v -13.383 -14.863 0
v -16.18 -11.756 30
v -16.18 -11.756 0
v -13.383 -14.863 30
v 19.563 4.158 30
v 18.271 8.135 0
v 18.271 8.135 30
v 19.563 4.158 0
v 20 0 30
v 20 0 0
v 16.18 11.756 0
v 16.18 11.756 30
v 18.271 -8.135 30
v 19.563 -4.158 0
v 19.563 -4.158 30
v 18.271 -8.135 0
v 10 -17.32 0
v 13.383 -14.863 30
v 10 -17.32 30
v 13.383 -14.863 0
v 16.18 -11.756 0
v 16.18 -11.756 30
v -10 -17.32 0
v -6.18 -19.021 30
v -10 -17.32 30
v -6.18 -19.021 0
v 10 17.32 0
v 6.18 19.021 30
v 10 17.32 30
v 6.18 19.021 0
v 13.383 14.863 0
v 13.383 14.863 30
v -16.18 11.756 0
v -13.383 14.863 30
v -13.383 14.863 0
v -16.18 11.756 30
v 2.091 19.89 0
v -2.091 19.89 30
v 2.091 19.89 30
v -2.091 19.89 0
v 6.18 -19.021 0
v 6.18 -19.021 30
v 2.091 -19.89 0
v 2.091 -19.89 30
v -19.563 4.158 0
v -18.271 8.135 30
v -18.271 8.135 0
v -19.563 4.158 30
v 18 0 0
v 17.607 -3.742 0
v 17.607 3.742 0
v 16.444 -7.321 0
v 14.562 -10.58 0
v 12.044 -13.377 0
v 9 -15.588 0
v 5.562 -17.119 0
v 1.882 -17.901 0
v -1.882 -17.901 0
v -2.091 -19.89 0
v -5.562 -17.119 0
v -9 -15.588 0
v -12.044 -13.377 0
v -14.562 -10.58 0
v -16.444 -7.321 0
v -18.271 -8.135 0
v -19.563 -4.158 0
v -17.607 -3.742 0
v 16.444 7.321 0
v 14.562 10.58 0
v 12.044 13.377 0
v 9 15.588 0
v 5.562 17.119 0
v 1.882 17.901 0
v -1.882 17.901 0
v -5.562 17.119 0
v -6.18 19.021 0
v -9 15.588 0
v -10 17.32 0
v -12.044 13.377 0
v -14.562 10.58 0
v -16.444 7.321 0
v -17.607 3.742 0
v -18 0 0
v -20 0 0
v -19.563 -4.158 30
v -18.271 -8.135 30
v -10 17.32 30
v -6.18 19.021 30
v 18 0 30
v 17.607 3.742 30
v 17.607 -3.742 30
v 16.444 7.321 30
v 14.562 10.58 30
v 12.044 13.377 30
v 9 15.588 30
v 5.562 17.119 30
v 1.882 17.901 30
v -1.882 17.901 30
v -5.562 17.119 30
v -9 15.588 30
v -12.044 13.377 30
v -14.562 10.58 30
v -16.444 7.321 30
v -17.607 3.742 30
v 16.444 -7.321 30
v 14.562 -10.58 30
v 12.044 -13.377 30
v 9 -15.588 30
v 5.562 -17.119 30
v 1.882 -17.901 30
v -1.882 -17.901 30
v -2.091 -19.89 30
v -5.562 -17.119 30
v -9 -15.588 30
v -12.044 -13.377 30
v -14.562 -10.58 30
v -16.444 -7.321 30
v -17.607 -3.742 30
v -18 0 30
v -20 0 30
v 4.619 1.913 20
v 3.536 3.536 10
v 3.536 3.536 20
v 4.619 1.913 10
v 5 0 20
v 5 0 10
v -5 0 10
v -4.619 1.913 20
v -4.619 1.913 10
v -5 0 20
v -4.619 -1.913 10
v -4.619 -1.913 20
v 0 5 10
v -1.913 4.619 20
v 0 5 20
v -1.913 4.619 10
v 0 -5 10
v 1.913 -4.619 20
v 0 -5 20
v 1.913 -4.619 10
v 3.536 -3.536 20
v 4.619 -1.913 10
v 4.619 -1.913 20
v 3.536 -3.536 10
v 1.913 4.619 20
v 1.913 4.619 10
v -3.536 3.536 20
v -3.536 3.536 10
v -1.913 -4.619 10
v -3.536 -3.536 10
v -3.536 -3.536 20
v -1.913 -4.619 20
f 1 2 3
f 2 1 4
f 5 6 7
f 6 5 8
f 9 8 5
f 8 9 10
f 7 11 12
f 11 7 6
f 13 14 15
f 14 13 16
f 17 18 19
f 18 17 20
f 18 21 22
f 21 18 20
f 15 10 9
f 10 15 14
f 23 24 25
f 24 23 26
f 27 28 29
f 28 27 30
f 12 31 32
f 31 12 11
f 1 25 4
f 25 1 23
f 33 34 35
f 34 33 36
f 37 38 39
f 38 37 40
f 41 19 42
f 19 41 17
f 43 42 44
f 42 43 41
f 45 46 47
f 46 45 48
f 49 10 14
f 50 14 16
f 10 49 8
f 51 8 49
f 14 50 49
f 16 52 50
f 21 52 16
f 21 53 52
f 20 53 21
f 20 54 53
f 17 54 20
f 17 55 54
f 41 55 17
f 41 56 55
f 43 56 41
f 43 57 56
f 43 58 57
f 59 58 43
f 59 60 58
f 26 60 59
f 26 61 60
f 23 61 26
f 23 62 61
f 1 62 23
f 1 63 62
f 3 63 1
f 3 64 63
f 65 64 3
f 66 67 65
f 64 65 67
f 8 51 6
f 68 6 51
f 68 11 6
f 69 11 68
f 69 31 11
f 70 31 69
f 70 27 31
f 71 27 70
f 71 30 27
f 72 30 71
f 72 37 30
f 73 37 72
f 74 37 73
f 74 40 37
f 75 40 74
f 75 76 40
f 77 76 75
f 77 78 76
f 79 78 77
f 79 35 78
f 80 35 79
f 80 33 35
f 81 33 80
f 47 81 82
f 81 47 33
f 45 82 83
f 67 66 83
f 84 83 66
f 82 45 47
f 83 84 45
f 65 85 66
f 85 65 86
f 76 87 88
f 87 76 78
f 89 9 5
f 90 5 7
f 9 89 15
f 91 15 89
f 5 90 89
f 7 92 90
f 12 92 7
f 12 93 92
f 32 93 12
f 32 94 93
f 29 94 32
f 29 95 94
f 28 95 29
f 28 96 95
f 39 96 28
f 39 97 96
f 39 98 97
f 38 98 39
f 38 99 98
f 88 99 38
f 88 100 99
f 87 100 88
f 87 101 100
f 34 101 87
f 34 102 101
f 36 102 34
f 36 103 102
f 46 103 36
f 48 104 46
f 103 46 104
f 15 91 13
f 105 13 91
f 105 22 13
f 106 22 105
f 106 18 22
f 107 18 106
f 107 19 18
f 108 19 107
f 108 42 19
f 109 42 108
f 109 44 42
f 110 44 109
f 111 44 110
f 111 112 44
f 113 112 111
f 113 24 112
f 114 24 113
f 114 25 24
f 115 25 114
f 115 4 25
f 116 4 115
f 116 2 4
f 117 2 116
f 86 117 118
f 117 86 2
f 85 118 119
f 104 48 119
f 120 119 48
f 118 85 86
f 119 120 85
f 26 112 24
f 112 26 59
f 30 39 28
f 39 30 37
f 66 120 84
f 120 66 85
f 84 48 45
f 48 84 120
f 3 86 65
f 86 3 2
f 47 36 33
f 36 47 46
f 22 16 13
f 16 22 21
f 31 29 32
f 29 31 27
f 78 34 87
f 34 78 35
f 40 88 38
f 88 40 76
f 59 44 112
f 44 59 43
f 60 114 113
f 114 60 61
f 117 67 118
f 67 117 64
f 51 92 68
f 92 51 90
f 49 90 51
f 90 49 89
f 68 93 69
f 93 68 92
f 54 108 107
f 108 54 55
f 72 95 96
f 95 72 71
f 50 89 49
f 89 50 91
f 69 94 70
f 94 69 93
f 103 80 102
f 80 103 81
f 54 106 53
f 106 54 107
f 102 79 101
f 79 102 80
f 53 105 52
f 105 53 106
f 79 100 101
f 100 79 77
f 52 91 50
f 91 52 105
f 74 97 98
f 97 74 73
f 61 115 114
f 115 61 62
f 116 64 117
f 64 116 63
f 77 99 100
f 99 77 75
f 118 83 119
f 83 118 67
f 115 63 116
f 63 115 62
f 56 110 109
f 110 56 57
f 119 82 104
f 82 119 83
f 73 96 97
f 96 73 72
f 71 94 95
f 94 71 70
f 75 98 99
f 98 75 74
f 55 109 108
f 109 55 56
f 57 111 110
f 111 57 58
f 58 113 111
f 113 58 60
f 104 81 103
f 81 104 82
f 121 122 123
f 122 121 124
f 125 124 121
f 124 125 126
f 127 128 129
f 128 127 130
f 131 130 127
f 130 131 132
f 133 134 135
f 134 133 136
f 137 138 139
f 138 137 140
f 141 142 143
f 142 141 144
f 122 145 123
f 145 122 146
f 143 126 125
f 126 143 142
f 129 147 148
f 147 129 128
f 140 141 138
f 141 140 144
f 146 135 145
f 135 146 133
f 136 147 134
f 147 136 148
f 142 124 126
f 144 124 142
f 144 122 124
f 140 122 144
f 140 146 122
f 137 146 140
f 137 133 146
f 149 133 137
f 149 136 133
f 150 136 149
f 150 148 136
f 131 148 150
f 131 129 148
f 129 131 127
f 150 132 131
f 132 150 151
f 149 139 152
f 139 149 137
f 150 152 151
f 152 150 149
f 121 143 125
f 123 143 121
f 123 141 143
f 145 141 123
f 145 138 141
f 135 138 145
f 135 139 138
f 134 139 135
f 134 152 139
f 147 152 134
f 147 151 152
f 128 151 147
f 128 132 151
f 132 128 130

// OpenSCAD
// Socket parameters
radius = 20;
height = 30;
wall_thickness = 2;
hole_diameter = 10;
inner_radius = radius - wall_thickness;
inner_height = height - wall_thickness;

// Main body of the socket
difference() {
  cylinder(h = height, r = radius, center = false);
  translate([0, 0, -0.1])
    cylinder(h = height + 0.2, r = inner_radius, center = false);
}

// Hole in the socket
translate([0, 0, height/2])
rotate([0, 0, 0])
cylinder(h = 10, r = hole_diameter / 2, center = true);
